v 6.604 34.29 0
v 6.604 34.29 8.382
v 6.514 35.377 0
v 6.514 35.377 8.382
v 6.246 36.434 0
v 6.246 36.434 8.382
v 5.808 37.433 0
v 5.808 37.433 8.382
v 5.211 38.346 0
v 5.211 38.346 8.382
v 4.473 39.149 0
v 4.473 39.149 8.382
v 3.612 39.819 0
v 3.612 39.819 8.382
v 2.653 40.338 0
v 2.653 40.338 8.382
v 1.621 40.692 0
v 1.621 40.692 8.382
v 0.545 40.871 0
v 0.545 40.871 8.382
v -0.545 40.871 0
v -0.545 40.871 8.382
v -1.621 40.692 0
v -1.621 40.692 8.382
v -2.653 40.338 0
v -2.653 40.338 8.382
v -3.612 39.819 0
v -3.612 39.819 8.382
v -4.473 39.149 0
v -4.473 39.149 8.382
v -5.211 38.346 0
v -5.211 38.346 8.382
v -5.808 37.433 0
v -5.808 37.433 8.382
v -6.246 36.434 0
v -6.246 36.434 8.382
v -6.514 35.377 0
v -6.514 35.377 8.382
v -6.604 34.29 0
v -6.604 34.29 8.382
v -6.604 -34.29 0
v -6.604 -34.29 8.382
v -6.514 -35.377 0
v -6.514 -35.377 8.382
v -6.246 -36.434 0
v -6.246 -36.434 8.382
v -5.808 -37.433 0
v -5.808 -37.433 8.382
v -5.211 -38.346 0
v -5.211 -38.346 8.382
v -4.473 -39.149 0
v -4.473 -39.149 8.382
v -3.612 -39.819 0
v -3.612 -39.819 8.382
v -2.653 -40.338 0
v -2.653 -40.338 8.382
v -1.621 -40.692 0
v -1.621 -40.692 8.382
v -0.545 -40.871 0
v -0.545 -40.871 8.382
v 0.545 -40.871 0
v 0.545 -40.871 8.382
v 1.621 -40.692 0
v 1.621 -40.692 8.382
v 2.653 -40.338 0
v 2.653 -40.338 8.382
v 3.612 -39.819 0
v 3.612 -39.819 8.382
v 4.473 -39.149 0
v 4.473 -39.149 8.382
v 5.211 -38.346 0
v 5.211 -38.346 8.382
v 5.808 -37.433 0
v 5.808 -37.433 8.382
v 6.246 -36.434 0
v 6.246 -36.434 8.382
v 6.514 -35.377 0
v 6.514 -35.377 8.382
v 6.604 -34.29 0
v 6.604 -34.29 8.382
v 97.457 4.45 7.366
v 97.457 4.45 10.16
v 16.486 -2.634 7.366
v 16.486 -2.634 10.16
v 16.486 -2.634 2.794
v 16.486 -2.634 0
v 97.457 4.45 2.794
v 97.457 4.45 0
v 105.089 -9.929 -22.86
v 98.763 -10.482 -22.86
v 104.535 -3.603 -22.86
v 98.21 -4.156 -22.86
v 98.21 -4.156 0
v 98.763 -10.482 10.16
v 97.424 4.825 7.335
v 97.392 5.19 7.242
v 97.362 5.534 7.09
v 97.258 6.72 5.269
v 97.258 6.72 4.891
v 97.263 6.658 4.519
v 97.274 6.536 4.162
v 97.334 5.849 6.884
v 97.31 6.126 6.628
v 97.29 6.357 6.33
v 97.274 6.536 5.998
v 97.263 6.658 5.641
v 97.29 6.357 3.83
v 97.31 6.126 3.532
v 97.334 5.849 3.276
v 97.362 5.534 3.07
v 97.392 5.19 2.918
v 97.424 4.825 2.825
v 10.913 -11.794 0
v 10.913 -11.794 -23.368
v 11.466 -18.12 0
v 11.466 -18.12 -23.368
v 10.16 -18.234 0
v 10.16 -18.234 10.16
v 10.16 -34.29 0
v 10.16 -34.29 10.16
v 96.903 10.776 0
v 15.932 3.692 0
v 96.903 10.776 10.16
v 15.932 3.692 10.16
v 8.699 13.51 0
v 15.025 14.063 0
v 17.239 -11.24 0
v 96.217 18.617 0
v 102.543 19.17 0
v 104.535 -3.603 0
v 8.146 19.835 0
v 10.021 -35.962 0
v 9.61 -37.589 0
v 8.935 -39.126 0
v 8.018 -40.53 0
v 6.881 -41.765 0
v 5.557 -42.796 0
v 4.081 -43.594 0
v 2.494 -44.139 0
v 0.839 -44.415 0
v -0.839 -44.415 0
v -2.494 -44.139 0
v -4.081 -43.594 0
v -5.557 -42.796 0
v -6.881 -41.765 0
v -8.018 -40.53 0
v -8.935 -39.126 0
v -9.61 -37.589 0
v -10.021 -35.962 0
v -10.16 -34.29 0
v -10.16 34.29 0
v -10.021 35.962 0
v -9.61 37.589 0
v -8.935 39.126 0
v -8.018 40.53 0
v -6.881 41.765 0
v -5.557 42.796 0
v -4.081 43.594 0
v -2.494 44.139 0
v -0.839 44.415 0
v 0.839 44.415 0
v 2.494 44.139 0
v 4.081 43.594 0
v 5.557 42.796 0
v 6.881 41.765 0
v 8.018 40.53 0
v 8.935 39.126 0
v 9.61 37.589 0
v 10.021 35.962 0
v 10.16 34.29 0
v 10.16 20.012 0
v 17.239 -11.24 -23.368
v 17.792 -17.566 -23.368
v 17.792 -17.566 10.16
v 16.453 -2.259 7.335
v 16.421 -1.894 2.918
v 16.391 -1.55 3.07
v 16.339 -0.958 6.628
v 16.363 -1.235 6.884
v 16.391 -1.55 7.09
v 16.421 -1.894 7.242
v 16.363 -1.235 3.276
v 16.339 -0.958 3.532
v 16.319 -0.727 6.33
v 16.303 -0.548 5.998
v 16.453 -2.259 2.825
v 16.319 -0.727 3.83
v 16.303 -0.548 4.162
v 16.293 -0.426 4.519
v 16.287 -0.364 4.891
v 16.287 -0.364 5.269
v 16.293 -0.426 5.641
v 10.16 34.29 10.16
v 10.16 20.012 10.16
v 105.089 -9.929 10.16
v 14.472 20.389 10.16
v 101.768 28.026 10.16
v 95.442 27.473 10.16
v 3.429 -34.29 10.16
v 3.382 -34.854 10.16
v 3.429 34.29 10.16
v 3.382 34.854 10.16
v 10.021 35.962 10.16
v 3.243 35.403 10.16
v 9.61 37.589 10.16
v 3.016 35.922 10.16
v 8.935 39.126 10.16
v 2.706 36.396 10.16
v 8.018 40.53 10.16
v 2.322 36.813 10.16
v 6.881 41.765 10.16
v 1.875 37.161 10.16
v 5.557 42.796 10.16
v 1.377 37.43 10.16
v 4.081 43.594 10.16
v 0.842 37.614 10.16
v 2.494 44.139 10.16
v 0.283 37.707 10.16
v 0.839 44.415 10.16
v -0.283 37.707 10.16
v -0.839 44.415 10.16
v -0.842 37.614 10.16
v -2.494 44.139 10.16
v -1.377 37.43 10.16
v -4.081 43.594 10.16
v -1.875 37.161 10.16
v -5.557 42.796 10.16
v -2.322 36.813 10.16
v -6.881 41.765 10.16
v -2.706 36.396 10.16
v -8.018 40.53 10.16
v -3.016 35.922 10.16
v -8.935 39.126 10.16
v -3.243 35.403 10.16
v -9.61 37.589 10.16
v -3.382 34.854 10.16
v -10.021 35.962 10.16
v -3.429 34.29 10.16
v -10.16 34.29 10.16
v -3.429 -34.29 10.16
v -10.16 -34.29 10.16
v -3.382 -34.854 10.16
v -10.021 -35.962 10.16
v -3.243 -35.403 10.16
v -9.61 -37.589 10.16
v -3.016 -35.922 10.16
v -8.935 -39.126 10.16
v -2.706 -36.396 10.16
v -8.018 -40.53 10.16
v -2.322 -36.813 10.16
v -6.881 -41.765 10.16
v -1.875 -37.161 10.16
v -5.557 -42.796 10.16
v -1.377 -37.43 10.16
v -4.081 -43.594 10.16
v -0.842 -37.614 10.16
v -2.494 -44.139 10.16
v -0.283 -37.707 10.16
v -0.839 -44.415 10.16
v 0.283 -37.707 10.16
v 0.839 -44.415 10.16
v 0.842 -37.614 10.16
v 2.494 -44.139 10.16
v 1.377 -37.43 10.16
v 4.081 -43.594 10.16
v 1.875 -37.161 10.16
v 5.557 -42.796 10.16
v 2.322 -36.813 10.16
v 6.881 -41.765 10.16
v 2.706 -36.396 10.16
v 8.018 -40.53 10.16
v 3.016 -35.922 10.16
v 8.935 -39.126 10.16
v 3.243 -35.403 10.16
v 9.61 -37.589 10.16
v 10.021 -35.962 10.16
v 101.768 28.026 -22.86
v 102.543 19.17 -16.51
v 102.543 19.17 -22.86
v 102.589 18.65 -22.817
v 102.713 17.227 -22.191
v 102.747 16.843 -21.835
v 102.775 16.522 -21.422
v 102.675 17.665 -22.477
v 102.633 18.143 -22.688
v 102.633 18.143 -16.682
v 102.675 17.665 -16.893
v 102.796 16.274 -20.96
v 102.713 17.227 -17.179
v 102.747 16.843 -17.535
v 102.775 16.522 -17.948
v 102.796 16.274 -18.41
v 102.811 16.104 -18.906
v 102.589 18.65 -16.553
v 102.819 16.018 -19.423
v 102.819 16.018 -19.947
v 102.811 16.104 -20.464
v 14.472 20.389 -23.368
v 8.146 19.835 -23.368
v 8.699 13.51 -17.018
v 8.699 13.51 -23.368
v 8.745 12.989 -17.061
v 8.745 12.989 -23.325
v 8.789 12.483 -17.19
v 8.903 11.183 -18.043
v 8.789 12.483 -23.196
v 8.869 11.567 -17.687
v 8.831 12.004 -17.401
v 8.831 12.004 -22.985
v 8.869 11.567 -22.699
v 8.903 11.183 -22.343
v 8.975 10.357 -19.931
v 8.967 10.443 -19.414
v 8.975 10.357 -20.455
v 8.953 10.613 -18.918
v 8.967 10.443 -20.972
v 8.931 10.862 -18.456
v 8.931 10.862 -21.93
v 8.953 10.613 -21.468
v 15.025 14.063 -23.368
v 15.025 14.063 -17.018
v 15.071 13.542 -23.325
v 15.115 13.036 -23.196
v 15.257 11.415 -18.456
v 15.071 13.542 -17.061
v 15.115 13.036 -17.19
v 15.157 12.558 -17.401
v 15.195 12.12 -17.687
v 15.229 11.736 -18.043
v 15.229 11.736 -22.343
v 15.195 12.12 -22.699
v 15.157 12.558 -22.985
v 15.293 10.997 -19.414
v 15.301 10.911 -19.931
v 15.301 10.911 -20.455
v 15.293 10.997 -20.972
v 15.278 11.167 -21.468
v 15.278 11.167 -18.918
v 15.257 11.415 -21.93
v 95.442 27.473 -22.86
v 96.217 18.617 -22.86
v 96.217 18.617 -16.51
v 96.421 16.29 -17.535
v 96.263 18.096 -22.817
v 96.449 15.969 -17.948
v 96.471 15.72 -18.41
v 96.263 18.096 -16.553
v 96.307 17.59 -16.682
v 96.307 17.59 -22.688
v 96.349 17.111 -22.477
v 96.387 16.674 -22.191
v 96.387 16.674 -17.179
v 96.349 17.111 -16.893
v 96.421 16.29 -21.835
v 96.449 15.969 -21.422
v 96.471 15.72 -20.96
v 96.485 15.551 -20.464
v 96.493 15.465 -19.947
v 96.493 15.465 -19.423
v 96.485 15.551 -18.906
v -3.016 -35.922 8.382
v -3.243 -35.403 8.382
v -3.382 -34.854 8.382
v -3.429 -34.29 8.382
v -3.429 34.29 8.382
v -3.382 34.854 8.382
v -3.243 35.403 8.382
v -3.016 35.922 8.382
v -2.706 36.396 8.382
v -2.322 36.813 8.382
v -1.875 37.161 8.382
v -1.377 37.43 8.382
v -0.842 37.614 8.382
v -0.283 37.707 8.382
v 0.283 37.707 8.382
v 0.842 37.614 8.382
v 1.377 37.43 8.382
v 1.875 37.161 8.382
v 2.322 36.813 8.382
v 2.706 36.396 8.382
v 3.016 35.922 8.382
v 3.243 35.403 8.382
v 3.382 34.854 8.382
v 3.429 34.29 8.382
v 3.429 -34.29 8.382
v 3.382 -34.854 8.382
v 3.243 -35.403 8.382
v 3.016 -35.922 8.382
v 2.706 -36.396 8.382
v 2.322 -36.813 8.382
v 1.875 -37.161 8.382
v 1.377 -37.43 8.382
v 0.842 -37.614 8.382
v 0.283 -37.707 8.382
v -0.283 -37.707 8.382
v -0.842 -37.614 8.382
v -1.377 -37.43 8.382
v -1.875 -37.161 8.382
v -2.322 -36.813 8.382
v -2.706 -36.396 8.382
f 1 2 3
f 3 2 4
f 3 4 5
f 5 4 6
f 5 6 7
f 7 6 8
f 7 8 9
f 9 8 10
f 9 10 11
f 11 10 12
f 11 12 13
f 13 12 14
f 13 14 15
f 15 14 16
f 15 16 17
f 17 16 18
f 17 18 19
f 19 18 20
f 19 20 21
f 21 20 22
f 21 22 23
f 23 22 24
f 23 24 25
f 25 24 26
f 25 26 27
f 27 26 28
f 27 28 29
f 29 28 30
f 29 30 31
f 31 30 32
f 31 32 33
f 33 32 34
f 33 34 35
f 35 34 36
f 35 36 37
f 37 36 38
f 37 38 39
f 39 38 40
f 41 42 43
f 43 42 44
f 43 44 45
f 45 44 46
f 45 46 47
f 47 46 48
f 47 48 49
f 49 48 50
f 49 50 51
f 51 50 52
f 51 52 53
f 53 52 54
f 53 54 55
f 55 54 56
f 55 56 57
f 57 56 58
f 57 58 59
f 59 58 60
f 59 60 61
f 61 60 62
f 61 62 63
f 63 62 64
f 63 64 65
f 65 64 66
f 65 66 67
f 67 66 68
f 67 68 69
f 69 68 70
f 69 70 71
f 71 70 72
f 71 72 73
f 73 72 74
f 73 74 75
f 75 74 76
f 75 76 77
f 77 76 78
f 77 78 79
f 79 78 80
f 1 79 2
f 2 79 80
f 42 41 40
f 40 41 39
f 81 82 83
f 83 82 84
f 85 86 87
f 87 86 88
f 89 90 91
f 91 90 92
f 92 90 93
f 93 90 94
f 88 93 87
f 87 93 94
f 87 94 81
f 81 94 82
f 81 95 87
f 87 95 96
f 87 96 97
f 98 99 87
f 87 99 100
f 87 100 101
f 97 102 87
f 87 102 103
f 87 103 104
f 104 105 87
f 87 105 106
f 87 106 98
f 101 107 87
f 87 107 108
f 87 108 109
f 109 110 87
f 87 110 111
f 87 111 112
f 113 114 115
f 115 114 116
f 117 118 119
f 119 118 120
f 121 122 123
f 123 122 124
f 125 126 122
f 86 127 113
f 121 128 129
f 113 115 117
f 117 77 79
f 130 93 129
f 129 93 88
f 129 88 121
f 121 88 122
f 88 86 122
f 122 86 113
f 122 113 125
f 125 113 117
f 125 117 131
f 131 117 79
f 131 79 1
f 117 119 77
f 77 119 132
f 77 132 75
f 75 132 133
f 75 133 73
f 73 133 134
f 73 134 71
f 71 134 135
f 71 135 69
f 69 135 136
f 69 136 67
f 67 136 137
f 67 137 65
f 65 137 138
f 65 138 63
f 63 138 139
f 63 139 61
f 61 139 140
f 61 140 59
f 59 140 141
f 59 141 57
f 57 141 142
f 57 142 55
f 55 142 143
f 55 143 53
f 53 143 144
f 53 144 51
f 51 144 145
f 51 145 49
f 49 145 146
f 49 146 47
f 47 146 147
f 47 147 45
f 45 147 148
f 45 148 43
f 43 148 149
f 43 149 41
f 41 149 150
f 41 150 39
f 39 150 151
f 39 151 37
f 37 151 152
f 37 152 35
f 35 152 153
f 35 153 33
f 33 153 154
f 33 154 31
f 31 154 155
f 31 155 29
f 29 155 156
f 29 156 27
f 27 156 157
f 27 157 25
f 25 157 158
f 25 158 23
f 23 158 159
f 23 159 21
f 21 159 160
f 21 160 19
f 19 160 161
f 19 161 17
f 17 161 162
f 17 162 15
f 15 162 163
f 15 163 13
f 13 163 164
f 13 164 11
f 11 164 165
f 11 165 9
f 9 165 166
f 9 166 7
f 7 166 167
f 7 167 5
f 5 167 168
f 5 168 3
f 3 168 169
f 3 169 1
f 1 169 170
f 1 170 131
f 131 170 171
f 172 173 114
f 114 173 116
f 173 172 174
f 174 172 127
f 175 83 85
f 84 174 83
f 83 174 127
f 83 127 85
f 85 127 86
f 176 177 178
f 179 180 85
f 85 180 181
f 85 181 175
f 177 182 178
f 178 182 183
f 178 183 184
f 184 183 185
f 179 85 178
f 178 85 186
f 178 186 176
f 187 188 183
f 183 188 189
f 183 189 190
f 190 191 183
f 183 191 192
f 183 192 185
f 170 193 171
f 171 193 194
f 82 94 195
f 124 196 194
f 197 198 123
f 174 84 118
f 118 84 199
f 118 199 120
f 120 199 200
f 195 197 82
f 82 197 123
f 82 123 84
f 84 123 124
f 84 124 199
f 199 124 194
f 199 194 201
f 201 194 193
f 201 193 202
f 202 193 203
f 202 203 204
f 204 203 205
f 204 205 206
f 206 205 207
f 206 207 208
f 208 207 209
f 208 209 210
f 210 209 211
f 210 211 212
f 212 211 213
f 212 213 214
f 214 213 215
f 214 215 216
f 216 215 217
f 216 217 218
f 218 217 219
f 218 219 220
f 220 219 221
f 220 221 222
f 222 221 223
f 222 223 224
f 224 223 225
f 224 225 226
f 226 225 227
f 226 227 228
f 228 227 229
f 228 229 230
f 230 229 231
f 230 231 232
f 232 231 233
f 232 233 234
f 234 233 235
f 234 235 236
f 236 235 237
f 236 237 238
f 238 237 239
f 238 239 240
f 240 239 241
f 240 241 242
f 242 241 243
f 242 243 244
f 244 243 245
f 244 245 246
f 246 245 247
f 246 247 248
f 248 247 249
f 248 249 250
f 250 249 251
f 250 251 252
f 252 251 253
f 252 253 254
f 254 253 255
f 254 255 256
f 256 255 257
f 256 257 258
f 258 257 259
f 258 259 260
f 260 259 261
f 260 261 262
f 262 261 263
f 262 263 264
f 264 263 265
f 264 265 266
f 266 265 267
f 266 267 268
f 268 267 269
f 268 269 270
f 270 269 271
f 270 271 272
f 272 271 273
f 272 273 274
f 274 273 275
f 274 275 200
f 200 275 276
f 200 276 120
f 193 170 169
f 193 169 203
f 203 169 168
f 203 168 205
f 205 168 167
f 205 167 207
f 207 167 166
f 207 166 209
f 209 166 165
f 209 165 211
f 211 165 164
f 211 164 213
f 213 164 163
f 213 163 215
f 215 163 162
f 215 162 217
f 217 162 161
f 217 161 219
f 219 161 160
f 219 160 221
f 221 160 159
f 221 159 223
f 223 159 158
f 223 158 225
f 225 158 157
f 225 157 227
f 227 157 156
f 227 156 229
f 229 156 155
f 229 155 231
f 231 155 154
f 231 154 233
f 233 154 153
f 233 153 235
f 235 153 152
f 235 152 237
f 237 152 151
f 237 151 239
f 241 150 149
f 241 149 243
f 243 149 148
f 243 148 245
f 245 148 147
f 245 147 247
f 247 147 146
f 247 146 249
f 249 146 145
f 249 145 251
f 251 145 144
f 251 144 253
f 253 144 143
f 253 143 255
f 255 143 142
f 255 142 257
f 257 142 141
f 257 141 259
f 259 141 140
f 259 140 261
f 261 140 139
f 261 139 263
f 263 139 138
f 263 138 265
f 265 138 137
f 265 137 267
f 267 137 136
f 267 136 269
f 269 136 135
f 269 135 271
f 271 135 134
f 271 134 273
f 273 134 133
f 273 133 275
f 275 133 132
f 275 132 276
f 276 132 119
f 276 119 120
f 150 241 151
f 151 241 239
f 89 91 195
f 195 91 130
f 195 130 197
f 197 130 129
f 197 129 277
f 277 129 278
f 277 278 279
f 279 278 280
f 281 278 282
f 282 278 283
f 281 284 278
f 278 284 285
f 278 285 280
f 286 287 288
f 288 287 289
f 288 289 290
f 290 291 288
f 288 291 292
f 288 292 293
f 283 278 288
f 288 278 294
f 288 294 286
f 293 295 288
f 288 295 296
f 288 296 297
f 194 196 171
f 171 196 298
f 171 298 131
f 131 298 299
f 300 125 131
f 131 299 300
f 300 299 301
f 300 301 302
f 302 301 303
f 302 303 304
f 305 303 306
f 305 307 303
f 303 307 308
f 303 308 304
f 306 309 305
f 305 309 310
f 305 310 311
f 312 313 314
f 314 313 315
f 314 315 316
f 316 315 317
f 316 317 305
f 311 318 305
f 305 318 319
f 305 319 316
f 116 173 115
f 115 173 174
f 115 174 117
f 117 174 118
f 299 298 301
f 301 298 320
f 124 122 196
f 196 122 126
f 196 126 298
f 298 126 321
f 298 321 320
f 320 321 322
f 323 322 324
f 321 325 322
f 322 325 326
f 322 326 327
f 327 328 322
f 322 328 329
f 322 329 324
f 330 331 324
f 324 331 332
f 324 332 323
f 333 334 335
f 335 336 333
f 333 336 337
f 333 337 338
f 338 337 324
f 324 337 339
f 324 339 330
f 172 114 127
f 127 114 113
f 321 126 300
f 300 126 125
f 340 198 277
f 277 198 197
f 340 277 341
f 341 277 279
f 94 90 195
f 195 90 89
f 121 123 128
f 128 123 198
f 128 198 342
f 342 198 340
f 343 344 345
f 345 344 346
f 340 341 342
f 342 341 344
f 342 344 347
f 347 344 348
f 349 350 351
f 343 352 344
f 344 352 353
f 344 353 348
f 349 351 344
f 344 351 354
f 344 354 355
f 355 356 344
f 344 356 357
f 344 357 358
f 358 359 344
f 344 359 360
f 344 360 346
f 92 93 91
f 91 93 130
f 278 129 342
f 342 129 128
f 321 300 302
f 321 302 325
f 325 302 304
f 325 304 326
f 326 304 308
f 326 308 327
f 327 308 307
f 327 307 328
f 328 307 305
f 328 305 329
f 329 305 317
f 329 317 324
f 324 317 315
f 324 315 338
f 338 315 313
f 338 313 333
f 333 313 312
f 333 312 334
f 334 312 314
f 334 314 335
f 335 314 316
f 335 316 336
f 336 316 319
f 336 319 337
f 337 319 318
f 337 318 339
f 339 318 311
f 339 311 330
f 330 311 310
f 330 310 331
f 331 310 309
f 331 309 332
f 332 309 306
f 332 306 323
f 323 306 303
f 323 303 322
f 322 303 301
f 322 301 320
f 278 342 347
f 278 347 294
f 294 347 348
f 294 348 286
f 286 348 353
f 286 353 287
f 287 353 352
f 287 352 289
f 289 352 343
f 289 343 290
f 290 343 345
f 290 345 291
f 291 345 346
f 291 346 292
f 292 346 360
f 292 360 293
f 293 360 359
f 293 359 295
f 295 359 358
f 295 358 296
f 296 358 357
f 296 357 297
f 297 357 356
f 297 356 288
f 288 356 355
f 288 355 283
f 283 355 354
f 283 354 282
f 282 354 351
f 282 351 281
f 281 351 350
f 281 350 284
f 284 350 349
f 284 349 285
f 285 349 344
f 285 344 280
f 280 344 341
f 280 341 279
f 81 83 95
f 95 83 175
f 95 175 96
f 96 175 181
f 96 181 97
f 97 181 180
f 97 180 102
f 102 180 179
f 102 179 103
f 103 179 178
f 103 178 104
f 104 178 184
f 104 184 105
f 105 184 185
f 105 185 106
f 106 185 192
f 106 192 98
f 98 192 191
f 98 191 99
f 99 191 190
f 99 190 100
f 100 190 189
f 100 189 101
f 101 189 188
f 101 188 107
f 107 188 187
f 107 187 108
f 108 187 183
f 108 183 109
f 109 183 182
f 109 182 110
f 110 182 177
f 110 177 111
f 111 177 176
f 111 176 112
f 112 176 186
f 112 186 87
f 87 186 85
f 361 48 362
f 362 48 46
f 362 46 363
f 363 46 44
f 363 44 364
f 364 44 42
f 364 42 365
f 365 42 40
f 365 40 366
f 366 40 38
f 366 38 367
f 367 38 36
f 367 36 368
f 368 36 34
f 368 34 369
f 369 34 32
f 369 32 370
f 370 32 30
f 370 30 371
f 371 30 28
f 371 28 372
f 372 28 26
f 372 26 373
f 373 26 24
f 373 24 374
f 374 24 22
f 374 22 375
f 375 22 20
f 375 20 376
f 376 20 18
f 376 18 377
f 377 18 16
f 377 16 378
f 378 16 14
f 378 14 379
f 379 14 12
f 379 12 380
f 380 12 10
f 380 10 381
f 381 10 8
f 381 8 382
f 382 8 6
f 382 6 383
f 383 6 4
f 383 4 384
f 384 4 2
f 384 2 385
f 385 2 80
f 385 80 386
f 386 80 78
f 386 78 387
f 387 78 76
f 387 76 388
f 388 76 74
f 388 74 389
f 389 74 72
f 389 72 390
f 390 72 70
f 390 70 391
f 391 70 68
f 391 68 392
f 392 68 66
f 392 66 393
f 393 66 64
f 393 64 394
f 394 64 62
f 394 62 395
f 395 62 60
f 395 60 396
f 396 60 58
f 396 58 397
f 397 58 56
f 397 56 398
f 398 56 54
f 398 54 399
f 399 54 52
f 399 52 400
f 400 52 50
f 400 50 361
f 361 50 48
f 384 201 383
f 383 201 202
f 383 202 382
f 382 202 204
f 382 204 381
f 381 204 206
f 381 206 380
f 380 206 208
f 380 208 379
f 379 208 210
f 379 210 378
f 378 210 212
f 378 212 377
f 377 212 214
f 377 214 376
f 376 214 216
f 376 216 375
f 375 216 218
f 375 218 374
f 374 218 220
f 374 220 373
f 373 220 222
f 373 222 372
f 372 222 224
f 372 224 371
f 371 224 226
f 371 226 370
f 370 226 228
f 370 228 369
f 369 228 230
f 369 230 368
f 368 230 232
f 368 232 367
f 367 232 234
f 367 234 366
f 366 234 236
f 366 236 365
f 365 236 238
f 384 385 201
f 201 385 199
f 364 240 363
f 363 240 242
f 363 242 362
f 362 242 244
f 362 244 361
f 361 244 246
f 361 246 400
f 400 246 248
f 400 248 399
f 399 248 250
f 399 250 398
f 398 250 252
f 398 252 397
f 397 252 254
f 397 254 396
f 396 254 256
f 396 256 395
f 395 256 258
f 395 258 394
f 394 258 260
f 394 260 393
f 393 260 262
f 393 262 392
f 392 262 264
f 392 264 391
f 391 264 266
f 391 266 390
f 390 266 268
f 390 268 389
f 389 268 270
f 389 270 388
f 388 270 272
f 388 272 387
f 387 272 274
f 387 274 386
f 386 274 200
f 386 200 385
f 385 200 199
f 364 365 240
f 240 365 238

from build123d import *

# Parameters (mm, degrees)
SKETCH1_R           = 10.16
SKETCH1_W           = 20.32
SKETCH1_H           = 68.58
BOSS_EXTRUDE1_DEPTH = 10.16
SKETCH2_R           = 6.604
SKETCH2_W           = 13.208
SKETCH2_H           = 68.58
CUT_EXTRUDE1_DEPTH  = 47.714598361
BOSS_EXTRUDE2_DEPTH = 10.16
SKETCH4_W           = 33.528
SKETCH4_H           = 38.1
BOSS_EXTRUDE3_DEPTH = 6.35
SKETCH5_W           = 23.368
SKETCH5_H           = 25.4
CUT_EXTRUDE2_DEPTH  = 102.646087633
SKETCH6_W           = 33.02
SKETCH6_H           = 38.1
BOSS_EXTRUDE4_DEPTH = 6.35
BOSS_EXTRUDE5_REACH = 110.063
SKETCH7_W           = 10.16
SKETCH7_H           = 14.989497654
SKETCH8_W           = 22.86
SKETCH8_H           = 22.86
CUT_EXTRUDE3_DEPTH  = 122.879251037
SKETCH9_R           = 3.175
BOSS_EXTRUDE6_DEPTH = 6.35
SKETCH10_R          = 3.175
BOSS_EXTRUDE7_DEPTH = 6.35
SKETCH13_R          = 2.286
CUT_EXTRUDE4_DEPTH  = 81.28
BOSS_EXTRUDE8_START = -1.778
BOSS_EXTRUDE8_DEPTH = 1.778


with BuildPart() as part:
    # Sketch1 → Boss-Extrude1 (new body)
    with BuildSketch(Plane.XY):
        with Locations((0, 34.29)):
            Circle(SKETCH1_R)
        with Locations((0, -34.29)):
            Circle(SKETCH1_R)
        Rectangle(SKETCH1_W, SKETCH1_H)
    extrude(amount=BOSS_EXTRUDE1_DEPTH)

    # Sketch2 → Cut-Extrude1 (cut, through all)
    with BuildSketch(Plane.XY.offset(10.16)):
        with Locations((0, 34.29)):
            Circle(SKETCH2_R)
        with Locations((0, -34.29)):
            Circle(SKETCH2_R)
        Rectangle(SKETCH2_W, SKETCH2_H)
    extrude(amount=-CUT_EXTRUDE1_DEPTH, mode=Mode.SUBTRACT)

    # Sketch3 → Boss-Extrude2 (add)
    with BuildSketch(Plane(origin=(0, 0, 0), x_dir=(-1, 0, 0), z_dir=(0, 0, -1))):
        Polygon((-9.606561034, 3.138708349), (-103.22893876, 11.329605052), (-103.782377727, 5.003768719), (-10.16, -3.187127984), align=None)
    extrude(amount=-BOSS_EXTRUDE2_DEPTH)

    # Sketch4 → Boss-Extrude3 (add)
    with BuildSketch(Plane(origin=(-103.08224956, 1291.177707373, 0), x_dir=(0, 0, -1), z_dir=(-0.9961946980917459, -0.08715574274765499, 0))):
        with Locations((6.604, 1295.248596403)):
            Rectangle(SKETCH4_W, SKETCH4_H)
    extrude(amount=-BOSS_EXTRUDE3_DEPTH)

    # Sketch5 → Cut-Extrude2 (cut, through all)
    with BuildSketch(Plane(origin=(16.131940235, 1.411361891, 0), x_dir=(0, 0, 1), z_dir=(0.9961946980917458, 0.08715574274765524, 0))):
        with Locations((-11.684, 0)):
            Rectangle(SKETCH5_W, SKETCH5_H)
    extrude(amount=-CUT_EXTRUDE2_DEPTH, mode=Mode.SUBTRACT)

    # Sketch6 → Boss-Extrude4 (add)
    with BuildSketch(Plane(origin=(103.428481629, 9.048819628, 0), x_dir=(0, 0, -1), z_dir=(0.9961946980917468, 0.08715574274764347, 0))):
        with Locations((6.35, 0)):
            Rectangle(SKETCH6_W, SKETCH6_H)
    extrude(amount=-BOSS_EXTRUDE4_DEPTH)

    # Sketch7 → Boss-Extrude5 (add, up to next)
    with BuildSketch(Plane(origin=(9.806103902, 0.857922925, 0), x_dir=(0, 0, 1), z_dir=(-0.9961946980917458, -0.08715574274765528, 0)), mode=Mode.PRIVATE) as boss_extrude5_sk1:
        with Locations((5.08, -11.555251173)):
            Rectangle(SKETCH7_W, SKETCH7_H)
    boss_extrude5_tool1 = extrude(boss_extrude5_sk1.sketch, amount=BOSS_EXTRUDE5_REACH, mode=Mode.PRIVATE) - part.part
    add(boss_extrude5_tool1.solids().sort_by_distance((10.81321, -10.653357, 5.08))[0])

    # Sketch8 → Cut-Extrude3 (cut, through all)
    with BuildSketch(Plane(origin=(97.102645296, 8.495380662, 0), x_dir=(0, 0, 1), z_dir=(-0.9961946980917469, -0.08715574274764348, 0))):
        with Locations((-11.43, -1.27)):
            Rectangle(SKETCH8_W, SKETCH8_H)
    extrude(amount=-CUT_EXTRUDE3_DEPTH, mode=Mode.SUBTRACT)

    # Sketch9 → Boss-Extrude6 (add)
    with BuildSketch(Plane(origin=(9.806103902, 0.857922925, 0), x_dir=(0, 0, 1), z_dir=(-0.9961946980917459, -0.0871557427476546, 0))):
        with Locations((-20.193, 12.7)):
            Circle(SKETCH9_R)
    extrude(amount=-BOSS_EXTRUDE6_DEPTH)

    # Sketch10 → Boss-Extrude7 (add)
    with BuildSketch(Plane(origin=(97.102645296, 8.495380662, 0), x_dir=(0, 0, 1), z_dir=(-0.9961946980917469, -0.08715574274764348, 0))):
        with Locations((-19.685, 10.16)):
            Circle(SKETCH10_R)
    extrude(amount=-BOSS_EXTRUDE7_DEPTH)

    # Sketch13 → Cut-Extrude4 (cut)
    with BuildSketch(Plane(origin=(16.131940235, 1.411361891, 0), x_dir=(0, 0, -1), z_dir=(0.9961946980917459, 0.0871557427476546, 0))):
        with Locations((-5.08, -4.060502346)):
            Circle(SKETCH13_R)
    extrude(amount=CUT_EXTRUDE4_DEPTH, mode=Mode.SUBTRACT)

    # Sketch14 → Boss-Extrude8 (add)
    with BuildSketch(Plane.XY.offset(10.16).offset(BOSS_EXTRUDE8_START)):
        with BuildLine():
            Line((-10.16, -34.29), (-10.16, 34.29))
            ThreePointArc((-10.16, 34.29), (0, 44.45), (10.16, 34.29))
            Line((10.16, 34.29), (10.16, -34.29))
            ThreePointArc((10.16, -34.29), (0, -44.45), (-10.16, -34.29))
        make_face()
        with BuildLine():
            Line((-3.429, -34.29), (-3.429, 34.29))
            ThreePointArc((-3.429, 34.29), (0, 37.719), (3.429, 34.29))
            Line((3.429, 34.29), (3.429, -34.29))
            ThreePointArc((3.429, -34.29), (0, -37.719), (-3.429, -34.29))
        make_face(mode=Mode.SUBTRACT)
    extrude(amount=BOSS_EXTRUDE8_DEPTH)


solid = part.part
